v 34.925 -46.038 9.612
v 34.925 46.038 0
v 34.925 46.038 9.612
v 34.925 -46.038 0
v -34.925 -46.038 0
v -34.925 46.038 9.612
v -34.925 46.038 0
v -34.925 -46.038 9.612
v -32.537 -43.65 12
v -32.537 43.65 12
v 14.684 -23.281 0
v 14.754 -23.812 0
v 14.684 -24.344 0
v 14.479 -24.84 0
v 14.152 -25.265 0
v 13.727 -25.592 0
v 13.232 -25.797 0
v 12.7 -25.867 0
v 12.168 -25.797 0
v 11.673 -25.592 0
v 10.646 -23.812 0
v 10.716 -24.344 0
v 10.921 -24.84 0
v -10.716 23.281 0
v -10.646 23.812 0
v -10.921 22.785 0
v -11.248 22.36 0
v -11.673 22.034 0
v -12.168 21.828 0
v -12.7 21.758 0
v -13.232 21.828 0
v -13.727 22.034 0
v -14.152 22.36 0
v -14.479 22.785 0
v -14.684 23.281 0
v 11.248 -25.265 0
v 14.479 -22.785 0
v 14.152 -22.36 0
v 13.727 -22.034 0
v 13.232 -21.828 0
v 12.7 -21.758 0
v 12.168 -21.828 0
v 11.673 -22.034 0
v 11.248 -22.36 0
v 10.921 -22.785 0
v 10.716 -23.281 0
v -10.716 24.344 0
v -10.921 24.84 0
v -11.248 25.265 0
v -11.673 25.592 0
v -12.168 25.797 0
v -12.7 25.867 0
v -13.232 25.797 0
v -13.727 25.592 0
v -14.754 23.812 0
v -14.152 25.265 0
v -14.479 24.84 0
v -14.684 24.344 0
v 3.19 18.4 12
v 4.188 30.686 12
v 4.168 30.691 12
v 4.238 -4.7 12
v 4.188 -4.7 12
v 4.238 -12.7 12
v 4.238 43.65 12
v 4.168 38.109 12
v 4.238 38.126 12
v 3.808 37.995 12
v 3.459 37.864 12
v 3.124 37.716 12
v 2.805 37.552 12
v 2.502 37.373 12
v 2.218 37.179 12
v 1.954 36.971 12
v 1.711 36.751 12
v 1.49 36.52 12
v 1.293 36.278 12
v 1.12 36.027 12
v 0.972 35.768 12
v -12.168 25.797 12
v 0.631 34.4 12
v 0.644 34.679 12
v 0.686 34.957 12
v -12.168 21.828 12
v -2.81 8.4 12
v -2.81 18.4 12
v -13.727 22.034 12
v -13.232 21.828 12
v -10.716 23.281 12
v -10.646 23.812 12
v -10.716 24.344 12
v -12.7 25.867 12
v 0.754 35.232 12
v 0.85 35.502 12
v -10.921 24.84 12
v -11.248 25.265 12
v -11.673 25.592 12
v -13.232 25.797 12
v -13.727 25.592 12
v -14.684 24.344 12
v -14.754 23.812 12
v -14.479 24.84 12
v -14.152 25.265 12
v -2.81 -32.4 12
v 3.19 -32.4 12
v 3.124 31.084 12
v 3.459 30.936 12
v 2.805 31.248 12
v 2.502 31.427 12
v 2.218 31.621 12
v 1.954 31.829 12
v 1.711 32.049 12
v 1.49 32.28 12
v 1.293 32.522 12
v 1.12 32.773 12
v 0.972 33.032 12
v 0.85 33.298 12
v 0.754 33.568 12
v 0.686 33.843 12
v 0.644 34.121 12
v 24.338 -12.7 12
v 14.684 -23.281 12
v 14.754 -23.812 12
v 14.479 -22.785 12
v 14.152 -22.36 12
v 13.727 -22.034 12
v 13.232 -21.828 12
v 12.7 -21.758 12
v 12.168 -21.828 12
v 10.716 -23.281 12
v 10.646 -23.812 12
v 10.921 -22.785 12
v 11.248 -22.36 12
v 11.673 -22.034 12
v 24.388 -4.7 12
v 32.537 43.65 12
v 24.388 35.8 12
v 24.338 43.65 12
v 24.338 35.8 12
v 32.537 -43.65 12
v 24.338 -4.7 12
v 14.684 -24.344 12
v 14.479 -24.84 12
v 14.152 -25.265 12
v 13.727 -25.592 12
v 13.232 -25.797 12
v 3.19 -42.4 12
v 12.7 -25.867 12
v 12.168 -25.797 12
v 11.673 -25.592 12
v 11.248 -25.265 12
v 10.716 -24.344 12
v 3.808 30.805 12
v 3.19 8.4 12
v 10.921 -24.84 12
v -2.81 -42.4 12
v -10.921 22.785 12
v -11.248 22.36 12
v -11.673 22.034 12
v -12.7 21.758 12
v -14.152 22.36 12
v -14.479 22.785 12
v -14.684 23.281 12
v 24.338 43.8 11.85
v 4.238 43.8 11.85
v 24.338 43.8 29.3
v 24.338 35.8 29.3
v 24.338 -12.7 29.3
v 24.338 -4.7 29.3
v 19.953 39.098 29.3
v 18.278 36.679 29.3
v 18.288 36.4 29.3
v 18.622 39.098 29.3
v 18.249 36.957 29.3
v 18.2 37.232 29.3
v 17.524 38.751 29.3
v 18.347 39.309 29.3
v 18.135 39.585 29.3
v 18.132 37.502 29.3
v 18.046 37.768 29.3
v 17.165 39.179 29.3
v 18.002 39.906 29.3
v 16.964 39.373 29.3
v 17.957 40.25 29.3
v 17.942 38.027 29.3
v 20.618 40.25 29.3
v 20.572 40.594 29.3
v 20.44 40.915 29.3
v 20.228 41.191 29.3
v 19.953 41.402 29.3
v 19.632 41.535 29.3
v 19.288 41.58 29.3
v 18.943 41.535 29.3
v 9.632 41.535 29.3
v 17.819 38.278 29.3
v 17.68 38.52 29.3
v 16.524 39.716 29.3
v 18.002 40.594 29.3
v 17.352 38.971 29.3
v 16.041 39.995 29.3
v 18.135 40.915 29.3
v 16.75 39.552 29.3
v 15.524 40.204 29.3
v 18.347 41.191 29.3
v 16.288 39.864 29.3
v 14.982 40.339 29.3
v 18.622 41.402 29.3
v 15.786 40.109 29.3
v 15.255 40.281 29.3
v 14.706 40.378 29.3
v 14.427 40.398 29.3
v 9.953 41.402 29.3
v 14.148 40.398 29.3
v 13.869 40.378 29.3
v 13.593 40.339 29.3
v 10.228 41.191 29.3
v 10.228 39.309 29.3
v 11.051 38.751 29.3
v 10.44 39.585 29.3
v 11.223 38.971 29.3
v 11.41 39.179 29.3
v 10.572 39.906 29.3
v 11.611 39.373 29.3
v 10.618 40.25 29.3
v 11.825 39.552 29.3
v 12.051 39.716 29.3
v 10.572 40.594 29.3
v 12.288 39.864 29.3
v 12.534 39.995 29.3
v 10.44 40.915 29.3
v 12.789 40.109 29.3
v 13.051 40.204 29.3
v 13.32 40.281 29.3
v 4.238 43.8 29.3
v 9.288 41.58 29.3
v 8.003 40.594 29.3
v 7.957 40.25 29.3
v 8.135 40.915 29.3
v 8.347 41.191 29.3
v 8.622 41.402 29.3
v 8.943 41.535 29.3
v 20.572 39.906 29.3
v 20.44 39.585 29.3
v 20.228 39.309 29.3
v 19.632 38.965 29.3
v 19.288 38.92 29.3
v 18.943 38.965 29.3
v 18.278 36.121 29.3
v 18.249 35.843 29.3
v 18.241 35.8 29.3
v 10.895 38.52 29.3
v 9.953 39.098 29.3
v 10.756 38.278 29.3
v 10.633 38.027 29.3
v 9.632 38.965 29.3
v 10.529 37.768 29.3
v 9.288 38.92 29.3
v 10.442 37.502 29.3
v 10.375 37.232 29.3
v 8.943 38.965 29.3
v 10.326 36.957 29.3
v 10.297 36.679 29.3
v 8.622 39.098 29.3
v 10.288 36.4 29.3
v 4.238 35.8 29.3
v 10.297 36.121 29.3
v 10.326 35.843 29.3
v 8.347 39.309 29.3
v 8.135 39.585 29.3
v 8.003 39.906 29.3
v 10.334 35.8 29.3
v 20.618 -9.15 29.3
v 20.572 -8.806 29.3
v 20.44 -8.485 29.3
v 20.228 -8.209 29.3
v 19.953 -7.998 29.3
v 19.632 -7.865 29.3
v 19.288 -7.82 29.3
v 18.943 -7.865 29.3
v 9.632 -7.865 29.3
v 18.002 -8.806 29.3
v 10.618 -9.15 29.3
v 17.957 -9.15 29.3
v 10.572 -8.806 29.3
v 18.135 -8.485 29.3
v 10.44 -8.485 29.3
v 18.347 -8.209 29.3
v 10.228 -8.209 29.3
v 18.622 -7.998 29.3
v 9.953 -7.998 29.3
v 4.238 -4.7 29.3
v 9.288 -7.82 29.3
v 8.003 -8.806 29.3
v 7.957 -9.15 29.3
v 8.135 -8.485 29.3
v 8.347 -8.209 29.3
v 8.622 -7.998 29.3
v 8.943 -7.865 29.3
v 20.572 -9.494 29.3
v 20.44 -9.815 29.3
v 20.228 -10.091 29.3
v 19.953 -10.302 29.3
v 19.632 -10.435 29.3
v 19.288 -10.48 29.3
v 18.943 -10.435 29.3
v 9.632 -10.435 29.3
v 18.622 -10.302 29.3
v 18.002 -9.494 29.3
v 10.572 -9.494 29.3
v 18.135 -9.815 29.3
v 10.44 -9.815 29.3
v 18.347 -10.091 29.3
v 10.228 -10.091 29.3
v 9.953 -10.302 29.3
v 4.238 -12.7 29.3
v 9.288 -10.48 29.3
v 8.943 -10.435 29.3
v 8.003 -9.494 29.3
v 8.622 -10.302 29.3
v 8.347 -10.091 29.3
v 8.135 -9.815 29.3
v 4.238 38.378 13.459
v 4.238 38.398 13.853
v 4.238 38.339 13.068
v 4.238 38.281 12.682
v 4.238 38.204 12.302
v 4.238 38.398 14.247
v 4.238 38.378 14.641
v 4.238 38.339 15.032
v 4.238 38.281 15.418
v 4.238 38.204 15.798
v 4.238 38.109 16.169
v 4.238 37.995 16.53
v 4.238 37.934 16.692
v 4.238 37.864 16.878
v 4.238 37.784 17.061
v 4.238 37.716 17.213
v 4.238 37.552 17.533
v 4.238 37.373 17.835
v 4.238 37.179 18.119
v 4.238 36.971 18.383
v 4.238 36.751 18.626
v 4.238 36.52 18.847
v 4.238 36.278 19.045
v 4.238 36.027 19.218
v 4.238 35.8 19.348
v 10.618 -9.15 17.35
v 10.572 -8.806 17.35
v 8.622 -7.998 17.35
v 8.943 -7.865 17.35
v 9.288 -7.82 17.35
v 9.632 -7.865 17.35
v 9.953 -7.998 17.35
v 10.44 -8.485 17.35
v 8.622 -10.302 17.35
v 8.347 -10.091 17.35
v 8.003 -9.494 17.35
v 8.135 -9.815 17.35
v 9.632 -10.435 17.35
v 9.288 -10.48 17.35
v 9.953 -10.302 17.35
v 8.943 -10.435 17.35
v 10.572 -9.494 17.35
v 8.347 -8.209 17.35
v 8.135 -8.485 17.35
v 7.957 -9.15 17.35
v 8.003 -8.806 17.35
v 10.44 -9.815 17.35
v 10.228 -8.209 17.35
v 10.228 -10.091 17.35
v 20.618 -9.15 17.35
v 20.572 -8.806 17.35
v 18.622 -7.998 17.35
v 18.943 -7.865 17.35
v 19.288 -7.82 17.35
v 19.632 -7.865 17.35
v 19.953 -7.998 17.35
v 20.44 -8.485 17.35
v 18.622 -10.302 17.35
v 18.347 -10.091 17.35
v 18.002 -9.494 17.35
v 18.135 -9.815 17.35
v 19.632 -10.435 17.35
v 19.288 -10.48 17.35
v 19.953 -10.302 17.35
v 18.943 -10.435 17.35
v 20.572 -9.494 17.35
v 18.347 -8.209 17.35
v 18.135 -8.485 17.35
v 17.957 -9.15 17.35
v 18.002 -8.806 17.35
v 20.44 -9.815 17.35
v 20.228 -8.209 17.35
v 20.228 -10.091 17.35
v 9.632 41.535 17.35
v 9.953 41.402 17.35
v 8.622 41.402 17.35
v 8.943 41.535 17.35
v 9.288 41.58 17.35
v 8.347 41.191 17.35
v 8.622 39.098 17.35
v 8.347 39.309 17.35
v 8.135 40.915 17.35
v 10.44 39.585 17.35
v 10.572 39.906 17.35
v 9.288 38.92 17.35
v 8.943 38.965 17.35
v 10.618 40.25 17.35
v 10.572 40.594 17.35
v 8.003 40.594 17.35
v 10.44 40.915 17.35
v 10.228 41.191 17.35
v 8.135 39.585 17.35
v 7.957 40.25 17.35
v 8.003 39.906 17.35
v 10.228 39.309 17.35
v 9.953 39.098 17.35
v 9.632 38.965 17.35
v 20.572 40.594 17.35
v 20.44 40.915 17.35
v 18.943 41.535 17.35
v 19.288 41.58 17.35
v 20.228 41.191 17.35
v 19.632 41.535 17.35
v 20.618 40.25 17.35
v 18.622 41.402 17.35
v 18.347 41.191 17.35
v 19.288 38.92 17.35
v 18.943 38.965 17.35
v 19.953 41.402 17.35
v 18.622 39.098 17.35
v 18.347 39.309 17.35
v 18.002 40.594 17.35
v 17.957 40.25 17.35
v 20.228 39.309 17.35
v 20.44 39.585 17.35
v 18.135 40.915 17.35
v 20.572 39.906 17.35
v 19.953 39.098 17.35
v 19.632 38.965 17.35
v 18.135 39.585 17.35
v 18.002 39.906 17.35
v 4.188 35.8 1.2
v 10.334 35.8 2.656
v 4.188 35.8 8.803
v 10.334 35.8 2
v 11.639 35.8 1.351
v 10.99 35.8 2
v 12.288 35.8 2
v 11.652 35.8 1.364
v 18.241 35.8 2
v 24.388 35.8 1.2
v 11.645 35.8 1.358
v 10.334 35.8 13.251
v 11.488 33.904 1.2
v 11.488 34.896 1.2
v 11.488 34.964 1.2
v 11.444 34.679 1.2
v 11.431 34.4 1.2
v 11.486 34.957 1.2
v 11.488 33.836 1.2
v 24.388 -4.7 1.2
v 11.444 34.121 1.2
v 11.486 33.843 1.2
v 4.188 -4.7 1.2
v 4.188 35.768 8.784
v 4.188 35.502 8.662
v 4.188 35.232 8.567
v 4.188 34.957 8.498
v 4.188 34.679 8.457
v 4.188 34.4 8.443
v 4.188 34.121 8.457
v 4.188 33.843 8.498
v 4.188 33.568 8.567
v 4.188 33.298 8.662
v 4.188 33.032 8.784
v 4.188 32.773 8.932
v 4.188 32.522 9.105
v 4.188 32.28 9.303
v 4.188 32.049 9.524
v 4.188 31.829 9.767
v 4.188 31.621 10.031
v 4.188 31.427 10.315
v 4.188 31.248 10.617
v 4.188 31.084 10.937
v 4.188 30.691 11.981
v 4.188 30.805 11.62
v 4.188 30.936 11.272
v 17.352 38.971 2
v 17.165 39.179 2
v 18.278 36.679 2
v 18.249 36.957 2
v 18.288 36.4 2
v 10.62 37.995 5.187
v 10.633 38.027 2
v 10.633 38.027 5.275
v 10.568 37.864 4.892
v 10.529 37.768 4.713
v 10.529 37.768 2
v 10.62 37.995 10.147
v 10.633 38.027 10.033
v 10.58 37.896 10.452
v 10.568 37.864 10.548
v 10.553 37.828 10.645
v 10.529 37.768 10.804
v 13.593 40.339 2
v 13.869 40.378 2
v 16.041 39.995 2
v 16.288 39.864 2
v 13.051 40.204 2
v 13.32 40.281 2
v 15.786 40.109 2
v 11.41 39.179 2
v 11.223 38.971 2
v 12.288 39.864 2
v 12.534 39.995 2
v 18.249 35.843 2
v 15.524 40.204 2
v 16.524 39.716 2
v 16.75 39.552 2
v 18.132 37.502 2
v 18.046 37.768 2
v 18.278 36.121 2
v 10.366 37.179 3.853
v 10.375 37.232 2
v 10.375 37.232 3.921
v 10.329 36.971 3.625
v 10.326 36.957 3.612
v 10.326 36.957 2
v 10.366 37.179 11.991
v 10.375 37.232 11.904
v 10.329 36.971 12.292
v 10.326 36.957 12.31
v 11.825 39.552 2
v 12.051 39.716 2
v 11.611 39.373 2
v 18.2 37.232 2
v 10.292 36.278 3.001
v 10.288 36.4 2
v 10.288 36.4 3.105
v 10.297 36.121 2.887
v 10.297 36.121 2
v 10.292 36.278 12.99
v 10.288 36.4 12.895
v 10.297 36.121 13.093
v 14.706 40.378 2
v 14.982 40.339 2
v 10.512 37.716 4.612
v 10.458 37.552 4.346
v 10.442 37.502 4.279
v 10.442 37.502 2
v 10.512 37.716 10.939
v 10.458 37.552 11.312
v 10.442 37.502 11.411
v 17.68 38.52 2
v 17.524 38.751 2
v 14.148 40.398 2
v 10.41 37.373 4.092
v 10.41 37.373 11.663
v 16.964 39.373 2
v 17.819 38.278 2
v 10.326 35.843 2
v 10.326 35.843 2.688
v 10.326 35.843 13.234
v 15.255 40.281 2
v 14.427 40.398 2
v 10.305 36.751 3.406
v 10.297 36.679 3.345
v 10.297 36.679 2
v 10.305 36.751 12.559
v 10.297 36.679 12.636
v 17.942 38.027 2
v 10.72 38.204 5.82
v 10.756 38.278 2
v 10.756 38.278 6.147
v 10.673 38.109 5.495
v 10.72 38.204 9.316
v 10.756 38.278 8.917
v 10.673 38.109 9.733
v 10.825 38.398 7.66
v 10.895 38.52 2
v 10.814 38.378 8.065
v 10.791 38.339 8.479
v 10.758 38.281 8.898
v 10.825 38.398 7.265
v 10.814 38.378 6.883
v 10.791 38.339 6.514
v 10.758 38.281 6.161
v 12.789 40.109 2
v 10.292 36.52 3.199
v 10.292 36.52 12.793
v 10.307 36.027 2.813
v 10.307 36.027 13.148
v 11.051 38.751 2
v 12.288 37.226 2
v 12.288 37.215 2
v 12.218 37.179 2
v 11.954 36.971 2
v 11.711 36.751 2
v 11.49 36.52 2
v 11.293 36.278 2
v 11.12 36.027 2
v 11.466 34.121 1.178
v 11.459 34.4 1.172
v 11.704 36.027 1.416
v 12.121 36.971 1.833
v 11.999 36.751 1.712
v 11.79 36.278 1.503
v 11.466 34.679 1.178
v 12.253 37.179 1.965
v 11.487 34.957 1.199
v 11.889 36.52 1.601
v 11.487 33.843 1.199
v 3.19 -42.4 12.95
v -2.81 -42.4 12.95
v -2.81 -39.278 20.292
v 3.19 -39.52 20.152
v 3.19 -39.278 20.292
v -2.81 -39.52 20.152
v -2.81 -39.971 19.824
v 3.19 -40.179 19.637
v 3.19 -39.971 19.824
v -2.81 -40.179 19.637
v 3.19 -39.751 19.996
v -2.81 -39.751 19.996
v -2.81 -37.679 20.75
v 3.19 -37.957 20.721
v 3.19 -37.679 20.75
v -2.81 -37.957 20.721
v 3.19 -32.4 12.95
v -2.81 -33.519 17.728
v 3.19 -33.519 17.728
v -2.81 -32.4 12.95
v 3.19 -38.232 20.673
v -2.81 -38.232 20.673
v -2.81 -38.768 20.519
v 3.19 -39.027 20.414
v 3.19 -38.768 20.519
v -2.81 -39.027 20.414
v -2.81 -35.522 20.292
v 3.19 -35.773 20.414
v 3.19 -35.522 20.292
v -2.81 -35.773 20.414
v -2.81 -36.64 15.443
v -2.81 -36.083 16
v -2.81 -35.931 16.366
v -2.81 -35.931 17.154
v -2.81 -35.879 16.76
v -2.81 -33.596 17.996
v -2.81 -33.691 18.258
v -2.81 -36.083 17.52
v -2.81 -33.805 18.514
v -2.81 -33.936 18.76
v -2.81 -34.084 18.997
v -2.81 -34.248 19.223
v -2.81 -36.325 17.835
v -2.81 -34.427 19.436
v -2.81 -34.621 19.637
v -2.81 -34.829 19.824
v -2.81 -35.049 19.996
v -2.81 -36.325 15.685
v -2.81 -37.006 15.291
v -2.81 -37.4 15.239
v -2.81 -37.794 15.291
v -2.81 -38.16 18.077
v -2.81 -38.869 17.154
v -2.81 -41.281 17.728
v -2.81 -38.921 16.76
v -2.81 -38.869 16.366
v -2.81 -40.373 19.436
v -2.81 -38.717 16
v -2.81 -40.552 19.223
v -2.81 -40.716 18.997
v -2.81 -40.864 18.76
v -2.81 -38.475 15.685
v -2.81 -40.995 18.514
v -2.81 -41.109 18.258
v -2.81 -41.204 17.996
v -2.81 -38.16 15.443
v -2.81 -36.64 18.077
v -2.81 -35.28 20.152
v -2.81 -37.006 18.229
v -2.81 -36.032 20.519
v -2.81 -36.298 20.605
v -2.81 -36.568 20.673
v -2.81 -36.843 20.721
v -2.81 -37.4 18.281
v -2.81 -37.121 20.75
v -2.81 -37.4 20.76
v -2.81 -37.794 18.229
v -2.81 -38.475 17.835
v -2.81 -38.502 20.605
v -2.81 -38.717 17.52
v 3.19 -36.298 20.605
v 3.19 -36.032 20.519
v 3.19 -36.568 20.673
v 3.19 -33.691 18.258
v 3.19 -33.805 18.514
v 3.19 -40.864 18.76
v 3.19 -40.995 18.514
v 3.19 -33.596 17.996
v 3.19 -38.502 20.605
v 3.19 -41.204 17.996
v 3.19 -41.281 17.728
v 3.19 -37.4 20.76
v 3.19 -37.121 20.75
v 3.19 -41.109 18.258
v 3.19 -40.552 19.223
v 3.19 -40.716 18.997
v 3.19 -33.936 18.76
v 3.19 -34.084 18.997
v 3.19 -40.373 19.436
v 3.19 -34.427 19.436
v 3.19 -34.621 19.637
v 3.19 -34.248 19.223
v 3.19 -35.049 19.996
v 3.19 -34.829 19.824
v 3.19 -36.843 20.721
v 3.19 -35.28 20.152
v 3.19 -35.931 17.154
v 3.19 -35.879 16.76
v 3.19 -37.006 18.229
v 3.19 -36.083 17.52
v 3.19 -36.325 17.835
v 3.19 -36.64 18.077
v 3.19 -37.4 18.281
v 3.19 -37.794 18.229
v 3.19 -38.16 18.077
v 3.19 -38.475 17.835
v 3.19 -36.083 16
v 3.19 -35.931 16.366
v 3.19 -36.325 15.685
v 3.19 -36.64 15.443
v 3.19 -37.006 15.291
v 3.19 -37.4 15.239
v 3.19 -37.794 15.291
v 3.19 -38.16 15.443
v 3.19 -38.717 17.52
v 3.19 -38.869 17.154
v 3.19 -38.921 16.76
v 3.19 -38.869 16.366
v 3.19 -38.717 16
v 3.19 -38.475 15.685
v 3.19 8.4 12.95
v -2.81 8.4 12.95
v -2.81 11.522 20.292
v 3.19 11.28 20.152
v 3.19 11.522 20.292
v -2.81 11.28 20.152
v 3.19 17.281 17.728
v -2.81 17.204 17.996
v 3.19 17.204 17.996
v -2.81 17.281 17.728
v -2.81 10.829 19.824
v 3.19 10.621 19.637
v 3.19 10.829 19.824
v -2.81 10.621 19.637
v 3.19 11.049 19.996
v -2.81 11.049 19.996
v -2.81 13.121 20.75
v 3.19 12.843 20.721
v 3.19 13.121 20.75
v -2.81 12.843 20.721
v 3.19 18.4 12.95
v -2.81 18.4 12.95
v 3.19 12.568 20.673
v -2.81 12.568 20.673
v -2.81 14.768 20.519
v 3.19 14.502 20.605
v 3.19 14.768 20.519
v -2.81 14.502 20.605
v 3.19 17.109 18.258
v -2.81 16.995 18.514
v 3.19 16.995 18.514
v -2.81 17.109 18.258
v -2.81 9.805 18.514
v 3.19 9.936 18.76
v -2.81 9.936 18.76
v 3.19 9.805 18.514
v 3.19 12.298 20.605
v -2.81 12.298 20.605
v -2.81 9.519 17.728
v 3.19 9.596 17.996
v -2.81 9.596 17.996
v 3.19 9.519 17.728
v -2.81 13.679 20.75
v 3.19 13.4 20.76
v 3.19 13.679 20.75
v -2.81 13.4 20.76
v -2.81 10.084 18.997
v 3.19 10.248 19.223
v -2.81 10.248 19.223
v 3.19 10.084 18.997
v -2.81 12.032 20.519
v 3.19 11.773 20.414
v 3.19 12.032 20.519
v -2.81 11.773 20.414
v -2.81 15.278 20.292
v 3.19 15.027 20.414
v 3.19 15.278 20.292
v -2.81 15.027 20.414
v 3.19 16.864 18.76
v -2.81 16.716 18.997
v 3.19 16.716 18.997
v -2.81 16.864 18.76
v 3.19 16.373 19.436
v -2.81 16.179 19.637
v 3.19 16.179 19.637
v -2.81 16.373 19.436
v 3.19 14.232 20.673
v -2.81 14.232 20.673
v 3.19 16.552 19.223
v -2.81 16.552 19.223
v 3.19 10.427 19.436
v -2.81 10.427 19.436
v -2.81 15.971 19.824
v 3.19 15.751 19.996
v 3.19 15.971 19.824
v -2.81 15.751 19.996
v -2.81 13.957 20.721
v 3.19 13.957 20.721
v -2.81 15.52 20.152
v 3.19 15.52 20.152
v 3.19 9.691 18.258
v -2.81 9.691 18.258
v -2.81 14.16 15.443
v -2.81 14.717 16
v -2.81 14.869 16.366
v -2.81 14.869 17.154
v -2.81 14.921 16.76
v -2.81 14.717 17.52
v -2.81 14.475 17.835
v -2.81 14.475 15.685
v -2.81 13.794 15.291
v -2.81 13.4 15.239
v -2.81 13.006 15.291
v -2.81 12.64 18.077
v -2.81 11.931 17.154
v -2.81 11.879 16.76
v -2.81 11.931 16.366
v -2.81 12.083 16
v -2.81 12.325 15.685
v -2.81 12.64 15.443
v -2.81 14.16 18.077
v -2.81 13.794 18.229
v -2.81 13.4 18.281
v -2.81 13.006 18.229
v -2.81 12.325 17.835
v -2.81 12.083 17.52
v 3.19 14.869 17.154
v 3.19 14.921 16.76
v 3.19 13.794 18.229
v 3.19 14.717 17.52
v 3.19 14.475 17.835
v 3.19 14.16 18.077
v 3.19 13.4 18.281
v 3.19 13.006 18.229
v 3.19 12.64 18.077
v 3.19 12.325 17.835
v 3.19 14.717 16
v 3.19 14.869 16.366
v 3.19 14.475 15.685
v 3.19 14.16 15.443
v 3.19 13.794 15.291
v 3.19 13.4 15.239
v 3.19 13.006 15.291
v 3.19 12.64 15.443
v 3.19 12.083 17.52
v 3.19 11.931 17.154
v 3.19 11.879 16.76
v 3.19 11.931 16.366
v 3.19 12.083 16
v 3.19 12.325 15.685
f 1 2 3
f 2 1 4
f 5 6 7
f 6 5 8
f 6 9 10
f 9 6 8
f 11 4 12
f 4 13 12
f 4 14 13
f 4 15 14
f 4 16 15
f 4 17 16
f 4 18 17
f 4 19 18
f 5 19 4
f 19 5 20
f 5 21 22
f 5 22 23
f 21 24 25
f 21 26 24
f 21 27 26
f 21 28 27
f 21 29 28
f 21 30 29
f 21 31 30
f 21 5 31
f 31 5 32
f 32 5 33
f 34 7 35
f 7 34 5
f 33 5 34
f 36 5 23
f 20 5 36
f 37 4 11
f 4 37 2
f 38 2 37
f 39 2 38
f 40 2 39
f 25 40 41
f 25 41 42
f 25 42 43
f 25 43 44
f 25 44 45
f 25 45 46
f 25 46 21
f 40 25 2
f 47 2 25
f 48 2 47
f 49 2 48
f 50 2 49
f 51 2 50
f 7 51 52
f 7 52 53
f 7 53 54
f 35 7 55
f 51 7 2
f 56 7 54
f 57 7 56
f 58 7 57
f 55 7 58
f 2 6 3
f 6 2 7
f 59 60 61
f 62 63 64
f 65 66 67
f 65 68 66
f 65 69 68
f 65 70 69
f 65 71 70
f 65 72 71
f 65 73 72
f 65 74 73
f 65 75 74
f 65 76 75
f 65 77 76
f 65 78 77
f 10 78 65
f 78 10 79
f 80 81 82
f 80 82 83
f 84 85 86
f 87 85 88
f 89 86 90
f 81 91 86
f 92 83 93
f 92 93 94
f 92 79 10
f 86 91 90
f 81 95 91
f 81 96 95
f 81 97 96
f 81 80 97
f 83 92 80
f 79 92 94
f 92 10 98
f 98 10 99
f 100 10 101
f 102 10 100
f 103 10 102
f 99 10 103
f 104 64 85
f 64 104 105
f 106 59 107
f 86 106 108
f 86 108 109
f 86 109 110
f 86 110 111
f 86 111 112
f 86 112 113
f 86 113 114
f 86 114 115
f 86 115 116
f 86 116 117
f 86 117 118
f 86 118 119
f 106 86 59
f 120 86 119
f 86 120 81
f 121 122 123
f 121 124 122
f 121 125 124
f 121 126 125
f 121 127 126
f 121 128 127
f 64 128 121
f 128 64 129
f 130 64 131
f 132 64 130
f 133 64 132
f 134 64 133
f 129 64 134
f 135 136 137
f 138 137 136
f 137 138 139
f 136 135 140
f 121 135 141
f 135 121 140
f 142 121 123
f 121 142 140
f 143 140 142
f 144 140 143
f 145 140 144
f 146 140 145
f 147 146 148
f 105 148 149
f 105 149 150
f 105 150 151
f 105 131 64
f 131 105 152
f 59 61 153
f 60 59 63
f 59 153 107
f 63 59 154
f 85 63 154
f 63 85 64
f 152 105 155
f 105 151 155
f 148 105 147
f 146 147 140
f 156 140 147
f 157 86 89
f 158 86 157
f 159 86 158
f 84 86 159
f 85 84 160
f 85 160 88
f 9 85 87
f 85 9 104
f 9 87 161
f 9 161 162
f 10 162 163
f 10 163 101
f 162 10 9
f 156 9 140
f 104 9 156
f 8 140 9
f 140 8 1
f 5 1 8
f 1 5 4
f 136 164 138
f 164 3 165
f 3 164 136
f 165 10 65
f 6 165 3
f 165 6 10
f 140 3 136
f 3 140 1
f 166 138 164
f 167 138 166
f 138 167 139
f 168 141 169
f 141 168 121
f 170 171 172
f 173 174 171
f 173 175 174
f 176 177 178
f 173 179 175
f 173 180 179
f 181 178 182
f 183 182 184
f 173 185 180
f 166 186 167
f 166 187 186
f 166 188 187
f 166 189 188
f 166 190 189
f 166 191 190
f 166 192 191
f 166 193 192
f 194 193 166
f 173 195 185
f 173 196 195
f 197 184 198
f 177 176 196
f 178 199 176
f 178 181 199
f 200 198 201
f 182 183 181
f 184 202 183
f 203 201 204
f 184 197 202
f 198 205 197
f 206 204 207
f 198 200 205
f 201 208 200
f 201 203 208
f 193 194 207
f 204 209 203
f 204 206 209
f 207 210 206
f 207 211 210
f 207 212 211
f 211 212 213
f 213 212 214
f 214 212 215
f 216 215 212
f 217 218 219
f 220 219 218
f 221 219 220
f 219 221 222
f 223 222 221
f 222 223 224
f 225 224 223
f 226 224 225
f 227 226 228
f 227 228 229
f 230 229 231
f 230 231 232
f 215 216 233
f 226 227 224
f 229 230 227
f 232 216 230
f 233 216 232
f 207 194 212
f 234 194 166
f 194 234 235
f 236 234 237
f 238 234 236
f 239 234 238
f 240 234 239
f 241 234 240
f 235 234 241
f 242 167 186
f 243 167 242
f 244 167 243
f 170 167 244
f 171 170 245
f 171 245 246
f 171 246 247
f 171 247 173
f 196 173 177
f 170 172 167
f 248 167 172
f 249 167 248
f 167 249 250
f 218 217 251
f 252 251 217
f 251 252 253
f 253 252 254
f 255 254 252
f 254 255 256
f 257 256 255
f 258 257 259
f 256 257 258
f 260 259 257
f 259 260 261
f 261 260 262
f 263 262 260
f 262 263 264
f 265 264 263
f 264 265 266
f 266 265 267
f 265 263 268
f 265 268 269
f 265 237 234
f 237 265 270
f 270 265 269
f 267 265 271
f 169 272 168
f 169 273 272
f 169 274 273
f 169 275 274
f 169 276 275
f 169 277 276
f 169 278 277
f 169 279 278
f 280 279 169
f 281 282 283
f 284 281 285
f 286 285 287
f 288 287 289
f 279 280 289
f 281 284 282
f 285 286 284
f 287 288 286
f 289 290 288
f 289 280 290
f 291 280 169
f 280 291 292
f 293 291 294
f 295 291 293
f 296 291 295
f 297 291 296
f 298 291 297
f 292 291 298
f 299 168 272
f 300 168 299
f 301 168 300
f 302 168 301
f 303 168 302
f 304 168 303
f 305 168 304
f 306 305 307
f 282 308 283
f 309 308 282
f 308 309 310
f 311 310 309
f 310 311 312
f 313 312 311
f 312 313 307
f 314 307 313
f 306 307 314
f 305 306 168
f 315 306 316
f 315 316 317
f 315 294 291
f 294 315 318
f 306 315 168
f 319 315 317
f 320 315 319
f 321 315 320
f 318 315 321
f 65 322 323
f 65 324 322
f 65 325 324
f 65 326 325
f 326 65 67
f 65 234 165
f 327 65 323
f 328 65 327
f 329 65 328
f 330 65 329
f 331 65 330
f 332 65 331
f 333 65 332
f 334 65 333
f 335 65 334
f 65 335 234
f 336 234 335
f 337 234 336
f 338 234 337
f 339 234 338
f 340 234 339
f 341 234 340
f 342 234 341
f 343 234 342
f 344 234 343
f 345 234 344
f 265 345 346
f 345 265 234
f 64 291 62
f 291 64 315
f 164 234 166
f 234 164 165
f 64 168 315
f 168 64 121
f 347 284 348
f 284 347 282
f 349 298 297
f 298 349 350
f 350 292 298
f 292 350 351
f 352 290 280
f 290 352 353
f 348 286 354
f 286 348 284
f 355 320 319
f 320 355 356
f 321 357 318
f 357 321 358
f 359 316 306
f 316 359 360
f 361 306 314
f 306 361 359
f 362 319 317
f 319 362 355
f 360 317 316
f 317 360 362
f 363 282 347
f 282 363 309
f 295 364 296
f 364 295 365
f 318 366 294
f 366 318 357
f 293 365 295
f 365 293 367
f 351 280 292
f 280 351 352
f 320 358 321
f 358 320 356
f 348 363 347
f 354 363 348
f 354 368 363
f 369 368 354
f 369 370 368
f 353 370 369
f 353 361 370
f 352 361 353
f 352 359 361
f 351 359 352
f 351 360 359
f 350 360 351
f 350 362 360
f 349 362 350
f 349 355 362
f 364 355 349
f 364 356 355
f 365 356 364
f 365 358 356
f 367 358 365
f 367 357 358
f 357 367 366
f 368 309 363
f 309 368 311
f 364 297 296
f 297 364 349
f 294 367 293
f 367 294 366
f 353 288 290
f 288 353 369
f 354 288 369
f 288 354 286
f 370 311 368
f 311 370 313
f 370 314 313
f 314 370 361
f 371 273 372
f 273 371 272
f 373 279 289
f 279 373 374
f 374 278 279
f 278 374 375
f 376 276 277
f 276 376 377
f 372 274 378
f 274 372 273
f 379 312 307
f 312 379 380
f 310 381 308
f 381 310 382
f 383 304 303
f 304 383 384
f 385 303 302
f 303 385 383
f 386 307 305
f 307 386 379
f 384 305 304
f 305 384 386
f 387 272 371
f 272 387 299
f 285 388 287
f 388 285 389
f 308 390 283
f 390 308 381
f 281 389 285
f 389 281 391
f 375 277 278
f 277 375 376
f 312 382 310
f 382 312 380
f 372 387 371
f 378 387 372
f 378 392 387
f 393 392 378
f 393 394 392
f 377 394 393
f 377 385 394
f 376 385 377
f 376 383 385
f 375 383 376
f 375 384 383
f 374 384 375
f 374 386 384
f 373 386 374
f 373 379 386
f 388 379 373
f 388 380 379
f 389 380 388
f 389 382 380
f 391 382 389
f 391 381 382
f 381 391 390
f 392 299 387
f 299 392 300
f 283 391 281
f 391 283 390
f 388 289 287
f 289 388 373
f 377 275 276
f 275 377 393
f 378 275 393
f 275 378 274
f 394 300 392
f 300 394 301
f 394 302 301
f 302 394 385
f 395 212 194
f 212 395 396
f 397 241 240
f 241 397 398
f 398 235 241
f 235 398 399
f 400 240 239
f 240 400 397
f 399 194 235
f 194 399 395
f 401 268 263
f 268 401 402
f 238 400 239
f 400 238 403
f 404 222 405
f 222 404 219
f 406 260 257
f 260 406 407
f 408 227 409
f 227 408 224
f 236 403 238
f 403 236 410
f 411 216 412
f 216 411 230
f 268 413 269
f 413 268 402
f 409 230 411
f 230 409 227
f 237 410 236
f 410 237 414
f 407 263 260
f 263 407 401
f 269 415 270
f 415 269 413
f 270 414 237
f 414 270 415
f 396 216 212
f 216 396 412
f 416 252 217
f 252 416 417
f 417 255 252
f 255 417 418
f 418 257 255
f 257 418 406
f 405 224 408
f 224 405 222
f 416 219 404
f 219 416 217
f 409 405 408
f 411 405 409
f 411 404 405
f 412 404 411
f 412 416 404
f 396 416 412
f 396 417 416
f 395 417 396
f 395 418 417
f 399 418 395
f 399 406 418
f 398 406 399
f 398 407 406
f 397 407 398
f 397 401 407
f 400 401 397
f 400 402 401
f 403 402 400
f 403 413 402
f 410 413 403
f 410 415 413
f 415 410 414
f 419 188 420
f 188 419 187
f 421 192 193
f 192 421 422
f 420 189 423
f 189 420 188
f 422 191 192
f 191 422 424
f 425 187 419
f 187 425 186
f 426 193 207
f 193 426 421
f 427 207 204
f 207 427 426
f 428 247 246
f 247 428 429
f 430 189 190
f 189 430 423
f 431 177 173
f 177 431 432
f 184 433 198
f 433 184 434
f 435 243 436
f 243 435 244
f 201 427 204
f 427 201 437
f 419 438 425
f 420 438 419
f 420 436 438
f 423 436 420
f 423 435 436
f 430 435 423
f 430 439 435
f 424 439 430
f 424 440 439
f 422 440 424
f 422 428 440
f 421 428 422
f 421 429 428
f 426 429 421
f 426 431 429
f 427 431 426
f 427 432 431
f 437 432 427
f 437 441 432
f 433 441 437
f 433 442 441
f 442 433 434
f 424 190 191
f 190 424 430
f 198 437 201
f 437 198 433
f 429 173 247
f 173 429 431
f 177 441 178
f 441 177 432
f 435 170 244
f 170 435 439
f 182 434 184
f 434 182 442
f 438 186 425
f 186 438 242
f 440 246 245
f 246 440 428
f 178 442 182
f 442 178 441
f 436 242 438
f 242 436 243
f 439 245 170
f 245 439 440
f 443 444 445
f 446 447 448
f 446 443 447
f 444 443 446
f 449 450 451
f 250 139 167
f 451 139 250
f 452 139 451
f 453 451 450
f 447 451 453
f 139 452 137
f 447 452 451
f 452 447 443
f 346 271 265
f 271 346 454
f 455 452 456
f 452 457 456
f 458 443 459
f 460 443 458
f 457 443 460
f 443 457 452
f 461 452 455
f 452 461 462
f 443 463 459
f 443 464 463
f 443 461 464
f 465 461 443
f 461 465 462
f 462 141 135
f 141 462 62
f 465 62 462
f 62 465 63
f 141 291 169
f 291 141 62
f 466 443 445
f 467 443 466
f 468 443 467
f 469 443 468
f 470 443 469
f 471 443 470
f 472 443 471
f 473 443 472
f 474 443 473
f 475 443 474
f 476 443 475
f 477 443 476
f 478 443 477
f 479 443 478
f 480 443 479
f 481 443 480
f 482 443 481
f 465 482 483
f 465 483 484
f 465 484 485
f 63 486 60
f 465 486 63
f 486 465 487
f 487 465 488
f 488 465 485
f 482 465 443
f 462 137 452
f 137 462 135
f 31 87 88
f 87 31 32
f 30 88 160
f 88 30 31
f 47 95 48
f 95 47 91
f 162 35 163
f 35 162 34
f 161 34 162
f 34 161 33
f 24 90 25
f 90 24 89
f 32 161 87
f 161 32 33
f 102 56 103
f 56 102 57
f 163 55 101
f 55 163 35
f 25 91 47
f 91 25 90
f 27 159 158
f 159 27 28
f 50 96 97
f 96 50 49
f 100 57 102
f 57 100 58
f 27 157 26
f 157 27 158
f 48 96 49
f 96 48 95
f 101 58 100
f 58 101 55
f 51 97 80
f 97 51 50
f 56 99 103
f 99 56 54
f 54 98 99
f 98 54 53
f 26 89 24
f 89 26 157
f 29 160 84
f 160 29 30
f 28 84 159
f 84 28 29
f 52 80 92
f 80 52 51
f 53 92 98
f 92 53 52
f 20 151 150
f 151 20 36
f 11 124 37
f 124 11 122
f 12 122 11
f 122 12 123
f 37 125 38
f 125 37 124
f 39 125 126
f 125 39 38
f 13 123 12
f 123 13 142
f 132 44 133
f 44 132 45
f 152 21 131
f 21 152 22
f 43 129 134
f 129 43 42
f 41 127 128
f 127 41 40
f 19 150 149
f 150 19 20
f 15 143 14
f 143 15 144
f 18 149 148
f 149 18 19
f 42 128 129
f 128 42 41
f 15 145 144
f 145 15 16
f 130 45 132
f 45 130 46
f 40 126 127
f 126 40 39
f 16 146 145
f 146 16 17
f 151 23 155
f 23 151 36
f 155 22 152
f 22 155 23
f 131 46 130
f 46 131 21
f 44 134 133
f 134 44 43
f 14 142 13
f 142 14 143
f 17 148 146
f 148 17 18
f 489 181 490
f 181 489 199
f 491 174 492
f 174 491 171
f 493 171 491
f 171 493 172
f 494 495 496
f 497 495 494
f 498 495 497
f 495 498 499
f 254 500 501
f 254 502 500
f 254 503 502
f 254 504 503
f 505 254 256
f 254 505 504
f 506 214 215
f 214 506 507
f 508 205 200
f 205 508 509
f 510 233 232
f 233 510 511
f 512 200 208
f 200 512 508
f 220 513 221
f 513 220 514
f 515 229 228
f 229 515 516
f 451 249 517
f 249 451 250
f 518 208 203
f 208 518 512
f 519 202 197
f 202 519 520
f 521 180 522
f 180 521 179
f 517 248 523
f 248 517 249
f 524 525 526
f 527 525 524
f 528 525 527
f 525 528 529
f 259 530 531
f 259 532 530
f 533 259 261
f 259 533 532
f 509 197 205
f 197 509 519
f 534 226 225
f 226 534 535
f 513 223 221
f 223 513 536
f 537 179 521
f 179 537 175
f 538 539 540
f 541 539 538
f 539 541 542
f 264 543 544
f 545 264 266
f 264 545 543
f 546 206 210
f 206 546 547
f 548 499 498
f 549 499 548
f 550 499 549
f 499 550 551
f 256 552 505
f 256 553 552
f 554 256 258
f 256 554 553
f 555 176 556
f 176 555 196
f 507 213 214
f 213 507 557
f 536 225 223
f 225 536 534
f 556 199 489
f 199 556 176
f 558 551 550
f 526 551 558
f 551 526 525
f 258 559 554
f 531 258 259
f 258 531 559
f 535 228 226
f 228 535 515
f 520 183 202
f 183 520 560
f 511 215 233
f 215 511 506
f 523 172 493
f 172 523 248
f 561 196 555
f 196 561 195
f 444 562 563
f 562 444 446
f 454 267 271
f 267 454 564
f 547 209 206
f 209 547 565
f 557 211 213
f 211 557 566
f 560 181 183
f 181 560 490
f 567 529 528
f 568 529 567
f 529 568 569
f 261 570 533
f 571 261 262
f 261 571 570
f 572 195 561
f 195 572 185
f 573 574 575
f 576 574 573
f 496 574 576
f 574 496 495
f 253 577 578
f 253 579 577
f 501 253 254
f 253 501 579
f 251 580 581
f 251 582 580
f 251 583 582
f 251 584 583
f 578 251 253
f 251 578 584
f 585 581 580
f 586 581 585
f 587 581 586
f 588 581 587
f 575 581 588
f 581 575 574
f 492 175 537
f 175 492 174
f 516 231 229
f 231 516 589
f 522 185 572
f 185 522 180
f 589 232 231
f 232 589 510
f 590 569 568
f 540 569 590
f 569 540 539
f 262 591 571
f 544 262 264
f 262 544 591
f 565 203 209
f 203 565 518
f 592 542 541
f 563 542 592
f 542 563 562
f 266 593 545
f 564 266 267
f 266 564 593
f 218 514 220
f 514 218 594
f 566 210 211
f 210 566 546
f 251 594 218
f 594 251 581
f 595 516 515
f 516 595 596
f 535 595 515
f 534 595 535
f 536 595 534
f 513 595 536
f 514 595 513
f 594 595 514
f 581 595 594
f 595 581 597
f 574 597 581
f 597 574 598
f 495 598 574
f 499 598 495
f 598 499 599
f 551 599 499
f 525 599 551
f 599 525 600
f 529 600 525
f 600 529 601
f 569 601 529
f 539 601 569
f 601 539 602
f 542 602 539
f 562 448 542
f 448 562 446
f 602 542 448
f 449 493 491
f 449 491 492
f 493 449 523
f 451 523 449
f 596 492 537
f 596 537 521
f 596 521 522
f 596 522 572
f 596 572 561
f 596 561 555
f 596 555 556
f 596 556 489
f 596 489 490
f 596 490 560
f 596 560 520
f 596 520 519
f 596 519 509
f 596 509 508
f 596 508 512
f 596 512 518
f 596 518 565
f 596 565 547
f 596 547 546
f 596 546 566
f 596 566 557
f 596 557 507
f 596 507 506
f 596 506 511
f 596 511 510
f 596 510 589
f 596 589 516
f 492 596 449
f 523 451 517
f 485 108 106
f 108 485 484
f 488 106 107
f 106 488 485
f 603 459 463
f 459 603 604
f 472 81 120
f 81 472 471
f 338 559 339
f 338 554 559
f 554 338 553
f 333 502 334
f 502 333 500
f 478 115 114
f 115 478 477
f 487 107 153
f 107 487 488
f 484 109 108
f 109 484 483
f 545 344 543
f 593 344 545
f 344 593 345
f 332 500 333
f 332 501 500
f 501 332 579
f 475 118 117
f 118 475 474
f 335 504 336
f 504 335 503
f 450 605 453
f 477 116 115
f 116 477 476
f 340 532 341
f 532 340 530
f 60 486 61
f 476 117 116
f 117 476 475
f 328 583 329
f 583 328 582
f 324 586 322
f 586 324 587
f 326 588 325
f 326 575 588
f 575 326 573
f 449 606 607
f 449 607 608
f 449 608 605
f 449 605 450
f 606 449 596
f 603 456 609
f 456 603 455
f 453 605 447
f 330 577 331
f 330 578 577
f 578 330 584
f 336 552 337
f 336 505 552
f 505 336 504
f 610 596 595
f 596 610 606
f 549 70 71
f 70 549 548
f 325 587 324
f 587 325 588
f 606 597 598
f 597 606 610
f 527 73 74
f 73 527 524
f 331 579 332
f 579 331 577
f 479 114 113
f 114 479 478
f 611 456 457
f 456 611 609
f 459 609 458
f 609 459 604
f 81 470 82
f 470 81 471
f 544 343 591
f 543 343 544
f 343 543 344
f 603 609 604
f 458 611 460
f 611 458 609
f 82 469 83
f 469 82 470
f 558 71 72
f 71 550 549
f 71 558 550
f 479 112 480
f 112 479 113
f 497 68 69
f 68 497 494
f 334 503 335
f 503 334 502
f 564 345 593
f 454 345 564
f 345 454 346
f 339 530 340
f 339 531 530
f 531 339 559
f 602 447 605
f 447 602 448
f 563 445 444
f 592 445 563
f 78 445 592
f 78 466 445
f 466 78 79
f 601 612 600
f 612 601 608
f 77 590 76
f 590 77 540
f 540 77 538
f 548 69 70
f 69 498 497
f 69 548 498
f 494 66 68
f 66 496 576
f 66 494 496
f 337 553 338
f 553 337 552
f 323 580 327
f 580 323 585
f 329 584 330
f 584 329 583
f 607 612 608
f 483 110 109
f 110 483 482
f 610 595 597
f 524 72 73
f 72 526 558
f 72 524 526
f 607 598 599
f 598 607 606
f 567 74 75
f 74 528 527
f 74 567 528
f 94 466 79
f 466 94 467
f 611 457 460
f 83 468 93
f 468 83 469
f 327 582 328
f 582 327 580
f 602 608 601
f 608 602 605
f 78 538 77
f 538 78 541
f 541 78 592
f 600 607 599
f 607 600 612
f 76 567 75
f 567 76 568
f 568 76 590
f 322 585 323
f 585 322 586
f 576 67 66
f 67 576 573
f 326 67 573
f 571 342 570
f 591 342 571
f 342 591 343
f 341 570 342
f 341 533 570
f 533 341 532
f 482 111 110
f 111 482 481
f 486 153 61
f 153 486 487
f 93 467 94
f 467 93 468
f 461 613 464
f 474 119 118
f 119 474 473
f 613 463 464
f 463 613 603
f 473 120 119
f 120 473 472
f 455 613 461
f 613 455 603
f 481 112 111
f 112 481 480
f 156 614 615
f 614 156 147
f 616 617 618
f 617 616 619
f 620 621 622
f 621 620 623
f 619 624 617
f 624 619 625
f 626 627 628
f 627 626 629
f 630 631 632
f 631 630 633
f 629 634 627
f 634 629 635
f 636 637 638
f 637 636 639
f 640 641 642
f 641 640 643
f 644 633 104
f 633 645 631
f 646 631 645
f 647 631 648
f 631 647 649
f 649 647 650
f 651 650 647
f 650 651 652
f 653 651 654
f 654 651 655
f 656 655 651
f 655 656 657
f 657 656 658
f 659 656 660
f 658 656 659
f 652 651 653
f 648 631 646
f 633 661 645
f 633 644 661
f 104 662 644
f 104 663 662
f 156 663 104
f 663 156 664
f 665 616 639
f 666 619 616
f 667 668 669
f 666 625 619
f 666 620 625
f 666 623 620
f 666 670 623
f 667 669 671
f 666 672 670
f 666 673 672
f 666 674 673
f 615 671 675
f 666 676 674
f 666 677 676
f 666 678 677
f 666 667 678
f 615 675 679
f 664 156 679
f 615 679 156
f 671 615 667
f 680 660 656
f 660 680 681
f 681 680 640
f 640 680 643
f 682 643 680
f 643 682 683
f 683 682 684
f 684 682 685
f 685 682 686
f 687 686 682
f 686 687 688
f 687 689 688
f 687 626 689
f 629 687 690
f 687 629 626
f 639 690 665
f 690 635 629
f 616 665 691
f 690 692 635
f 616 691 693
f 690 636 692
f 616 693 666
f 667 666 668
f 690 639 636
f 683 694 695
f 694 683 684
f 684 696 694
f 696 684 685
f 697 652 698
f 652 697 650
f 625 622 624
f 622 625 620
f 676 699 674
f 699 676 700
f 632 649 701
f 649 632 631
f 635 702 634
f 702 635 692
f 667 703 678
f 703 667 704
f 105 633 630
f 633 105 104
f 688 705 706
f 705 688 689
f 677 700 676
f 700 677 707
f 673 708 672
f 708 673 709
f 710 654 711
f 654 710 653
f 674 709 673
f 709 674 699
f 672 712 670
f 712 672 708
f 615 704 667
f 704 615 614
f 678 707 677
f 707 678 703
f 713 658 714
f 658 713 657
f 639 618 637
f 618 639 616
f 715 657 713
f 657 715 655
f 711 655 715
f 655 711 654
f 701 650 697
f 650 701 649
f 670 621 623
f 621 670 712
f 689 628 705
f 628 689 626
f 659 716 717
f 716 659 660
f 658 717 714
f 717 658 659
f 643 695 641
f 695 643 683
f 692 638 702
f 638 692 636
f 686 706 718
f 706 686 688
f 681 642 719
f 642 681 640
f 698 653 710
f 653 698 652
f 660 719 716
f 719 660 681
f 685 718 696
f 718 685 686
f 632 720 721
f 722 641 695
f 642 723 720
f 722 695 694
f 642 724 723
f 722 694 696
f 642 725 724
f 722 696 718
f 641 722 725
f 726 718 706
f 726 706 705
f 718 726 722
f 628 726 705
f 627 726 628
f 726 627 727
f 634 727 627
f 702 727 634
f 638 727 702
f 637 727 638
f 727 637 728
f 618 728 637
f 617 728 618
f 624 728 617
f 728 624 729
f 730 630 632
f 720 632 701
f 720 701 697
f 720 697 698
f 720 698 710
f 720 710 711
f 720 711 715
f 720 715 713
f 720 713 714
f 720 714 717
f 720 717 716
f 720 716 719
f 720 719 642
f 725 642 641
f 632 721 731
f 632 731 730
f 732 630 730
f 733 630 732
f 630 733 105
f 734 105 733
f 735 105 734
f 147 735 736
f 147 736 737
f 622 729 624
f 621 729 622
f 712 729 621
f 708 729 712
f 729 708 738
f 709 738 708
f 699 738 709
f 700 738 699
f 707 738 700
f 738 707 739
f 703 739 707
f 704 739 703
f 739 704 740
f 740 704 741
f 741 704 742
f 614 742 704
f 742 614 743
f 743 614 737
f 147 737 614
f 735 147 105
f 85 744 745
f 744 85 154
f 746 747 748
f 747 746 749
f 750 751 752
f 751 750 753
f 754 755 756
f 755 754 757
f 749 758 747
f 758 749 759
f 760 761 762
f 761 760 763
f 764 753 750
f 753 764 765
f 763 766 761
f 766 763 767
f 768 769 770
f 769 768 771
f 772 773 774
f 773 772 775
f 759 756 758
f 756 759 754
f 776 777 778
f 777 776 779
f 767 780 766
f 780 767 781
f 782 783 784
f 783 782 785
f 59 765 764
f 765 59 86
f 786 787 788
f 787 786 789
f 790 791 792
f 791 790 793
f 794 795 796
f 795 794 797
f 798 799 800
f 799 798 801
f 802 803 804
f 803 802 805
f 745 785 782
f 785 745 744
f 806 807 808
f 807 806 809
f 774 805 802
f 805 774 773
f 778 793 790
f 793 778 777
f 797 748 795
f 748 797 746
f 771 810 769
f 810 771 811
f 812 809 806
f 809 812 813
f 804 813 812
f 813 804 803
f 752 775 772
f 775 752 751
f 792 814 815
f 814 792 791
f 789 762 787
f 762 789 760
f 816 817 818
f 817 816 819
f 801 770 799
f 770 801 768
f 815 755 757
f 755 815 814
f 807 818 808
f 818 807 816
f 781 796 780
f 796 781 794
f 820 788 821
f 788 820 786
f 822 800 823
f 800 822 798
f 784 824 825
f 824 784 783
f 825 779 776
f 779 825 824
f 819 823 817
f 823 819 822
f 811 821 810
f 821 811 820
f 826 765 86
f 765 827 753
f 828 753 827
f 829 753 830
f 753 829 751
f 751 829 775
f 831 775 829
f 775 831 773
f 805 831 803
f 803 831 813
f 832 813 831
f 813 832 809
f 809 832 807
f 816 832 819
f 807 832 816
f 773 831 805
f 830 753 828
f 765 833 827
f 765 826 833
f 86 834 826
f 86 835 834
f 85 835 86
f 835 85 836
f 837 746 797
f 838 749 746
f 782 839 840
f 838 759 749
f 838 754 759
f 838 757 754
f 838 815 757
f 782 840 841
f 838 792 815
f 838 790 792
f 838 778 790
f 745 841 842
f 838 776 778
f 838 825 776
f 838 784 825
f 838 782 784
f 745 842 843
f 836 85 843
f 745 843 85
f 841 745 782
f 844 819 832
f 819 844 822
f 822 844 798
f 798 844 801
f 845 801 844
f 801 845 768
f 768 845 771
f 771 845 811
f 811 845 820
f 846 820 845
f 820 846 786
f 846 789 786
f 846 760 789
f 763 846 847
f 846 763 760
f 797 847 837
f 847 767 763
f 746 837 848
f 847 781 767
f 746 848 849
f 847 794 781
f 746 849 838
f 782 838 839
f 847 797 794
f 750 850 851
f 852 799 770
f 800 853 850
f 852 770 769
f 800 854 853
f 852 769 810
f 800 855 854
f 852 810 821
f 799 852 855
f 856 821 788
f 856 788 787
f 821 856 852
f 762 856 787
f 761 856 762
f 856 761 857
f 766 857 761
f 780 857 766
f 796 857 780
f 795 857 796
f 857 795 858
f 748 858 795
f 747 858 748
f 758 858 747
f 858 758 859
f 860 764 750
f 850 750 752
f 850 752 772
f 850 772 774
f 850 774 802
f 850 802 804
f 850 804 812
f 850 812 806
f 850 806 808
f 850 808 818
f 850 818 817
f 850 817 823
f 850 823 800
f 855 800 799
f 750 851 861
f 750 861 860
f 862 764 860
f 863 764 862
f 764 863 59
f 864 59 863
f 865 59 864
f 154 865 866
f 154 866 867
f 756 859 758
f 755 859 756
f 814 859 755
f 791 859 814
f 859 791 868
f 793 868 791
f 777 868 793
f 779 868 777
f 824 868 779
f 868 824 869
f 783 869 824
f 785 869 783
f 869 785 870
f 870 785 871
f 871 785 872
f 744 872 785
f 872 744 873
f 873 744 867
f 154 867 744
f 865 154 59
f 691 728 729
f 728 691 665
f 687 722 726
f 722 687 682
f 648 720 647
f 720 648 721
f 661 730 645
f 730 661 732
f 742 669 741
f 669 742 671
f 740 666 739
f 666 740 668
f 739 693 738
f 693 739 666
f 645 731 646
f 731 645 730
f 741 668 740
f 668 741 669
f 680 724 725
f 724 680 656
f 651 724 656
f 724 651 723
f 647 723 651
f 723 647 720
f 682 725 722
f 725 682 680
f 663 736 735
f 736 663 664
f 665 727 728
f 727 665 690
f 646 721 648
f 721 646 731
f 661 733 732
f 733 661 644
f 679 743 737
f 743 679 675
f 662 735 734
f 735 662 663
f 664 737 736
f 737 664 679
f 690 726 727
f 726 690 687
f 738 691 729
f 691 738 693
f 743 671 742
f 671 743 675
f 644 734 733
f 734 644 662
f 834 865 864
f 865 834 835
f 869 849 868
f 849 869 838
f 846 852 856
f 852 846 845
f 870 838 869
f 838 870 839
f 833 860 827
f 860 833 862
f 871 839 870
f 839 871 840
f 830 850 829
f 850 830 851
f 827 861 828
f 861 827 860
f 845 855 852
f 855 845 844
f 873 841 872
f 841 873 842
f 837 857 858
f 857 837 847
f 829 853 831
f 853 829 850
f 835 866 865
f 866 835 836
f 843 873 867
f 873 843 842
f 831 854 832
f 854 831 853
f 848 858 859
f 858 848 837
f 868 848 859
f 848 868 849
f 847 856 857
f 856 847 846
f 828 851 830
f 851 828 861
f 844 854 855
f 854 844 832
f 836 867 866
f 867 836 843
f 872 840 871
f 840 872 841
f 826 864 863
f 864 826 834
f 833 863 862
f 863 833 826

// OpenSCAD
// file: LD-20MGServoLib.scad
// **************************************************
// LD-20MG Servo Library
// David M. Flynn
// Filename: LD-20MGServoLib.scad
// Created: 7/16/2018
// Rev: 1.0.0 7/16/2018
// Units: millimeters
// **************************************************
// History:
	echo("LD-20MGServoLib 1.0.0");
// 1.0.0 7/16/2018 Coppied from HS-5245MGServoLib.scad
// **************************************************
// Notes:
//  Mounting of R/C mini servo HS-5245MG.
//  ToDo: Servo wheel needs adjusting.
// **************************************************
// Routines
//	Servo_LD20MG();
//	LD20MGServoWheel();
// **************************************************

include<CommonStuffSAEmm.scad>

$fn=90;

module Servo_LD20MG(BottomMount=true,TopAccess=true){
	Servo_Shaft_Offset=9.85; // this moves double
	Servo_BoltSpace=10;
	Servo_BoltSpace2=49.4;
	Servo_x=54.5;
	Servo_h1=28.2; // bottom of servo to bottom of mount
	Servo_w=20.2;
	Servo_Body_l=40.5;
	Servo_Deck_h=3.2;
	Servo_TopStep_h=9.7;
	Servo_TopOfWheel=21.4;
	
	translate([-Servo_Shaft_Offset,0,0]){
	// body
	if (BottomMount==true){
		translate([-Servo_x/2,-Servo_w/2,-Servo_h1])cube([Servo_x,Servo_w,Servo_h1+Overlap]);
	} else{
		translate([-Servo_Body_l/2,-Servo_w/2,-Servo_h1])cube([Servo_Body_l,Servo_w,Servo_h1+Overlap]);
	}
	
	// top
	if (BottomMount==true){
		translate([-Servo_x/2,-Servo_w/2,0])cube([Servo_x,Servo_w,Servo_Deck_h+Overlap]);
		translate([-Servo_Body_l/2,-Servo_w/2,Servo_Deck_h])cube([Servo_Body_l,Servo_w,Servo_TopStep_h+Overlap]);
		// gussets
		hull(){
			translate([-Servo_x/2,-0.8,Servo_Deck_h])cube([Servo_x,1.6,0.01]);
			translate([-Servo_Body_l/2,-0.8,Servo_Deck_h+2.4])cube([Servo_Body_l,1.6,0.01]);
		} // hull
	} else
	if (TopAccess==true){
		translate([-Servo_x/2,-Servo_w/2,0])cube([Servo_x,Servo_w,19]);
	} else {
	translate([-Servo_x/2,-Servo_w/2,0])cube([Servo_x,Servo_w,14]);
	}
	
	// Bolt holes
	translate([-Servo_BoltSpace2/2,Servo_BoltSpace/2,0]) Bolt4Hole();
	translate([-Servo_BoltSpace2/2,-Servo_BoltSpace/2,0]) Bolt4Hole();
	translate([Servo_BoltSpace2/2,Servo_BoltSpace/2,0]) Bolt4Hole();
	translate([Servo_BoltSpace2/2,-Servo_BoltSpace/2,0]) Bolt4Hole();
		
	if (BottomMount==true){
		translate([-Servo_BoltSpace2/2,Servo_BoltSpace/2,0]) rotate([180,0,0])Bolt4Hole();
		translate([-Servo_BoltSpace2/2,-Servo_BoltSpace/2,0]) rotate([180,0,0])Bolt4Hole();
		translate([Servo_BoltSpace2/2,Servo_BoltSpace/2,0]) rotate([180,0,0])Bolt4Hole();
		translate([Servo_BoltSpace2/2,-Servo_BoltSpace/2,0]) rotate([180,0,0])Bolt4Hole();
	} else{
		translate([-Servo_BoltSpace2/2,Servo_BoltSpace/2,0]) Bolt4Hole();
		translate([-Servo_BoltSpace2/2,-Servo_BoltSpace/2,0]) Bolt4Hole();
		translate([Servo_BoltSpace2/2,Servo_BoltSpace/2,0]) Bolt4Hole();
		translate([Servo_BoltSpace2/2,-Servo_BoltSpace/2,0]) Bolt4Hole();
	}
	
	if (BottomMount==true){
		// servo wheel
		translate([Servo_Shaft_Offset,0,Servo_Deck_h+Servo_TopStep_h-Overlap])
			cylinder(d=21.3,h=Servo_TopOfWheel-Servo_Deck_h-Servo_TopStep_h+Overlap);
	} else {
		translate([Servo_Shaft_Offset,0,0]) cylinder(d=21.3,h=19.6);
	}
	translate([Servo_Shaft_Offset,0,0]) cylinder(d=9,h=30);
	translate([Servo_Shaft_Offset,14.5/2,19.6+6]) Bolt4HeadHole();
	translate([Servo_Shaft_Offset,-14.5/2,19.6+6]) Bolt4HeadHole();
	}
} // Servo_LD20MG

//Servo_LD20MG();

module LD20MGServoWheel(){
	kHornThickness=2.1;
	kHub_d=13;
	
	cylinder(d=7.8,h=kHornThickness+1.2);
	cylinder(d=5.8,h=kHornThickness+10);
	
	hull(){
			translate([0,0,-Overlap]) cylinder(d=kHub_d,h=kHornThickness);
			translate([0,16.05,-Overlap]) cylinder(d=5.1,h=kHornThickness);
		} // hull
		
	hull(){
			translate([0,0,-Overlap]) cylinder(d=kHub_d,h=kHornThickness);
			translate([0,-16.05,-Overlap]) cylinder(d=5.1,h=kHornThickness);
		} // hull
		
		hull(){
			translate([0,0,-Overlap]) cylinder(d=kHub_d,h=kHornThickness);
			translate([-15.05,0,-Overlap]) cylinder(d=5.1,h=kHornThickness);
		} // hull
		
		hull(){
			translate([0,0,-Overlap]) cylinder(d=kHub_d,h=kHornThickness);
			translate([15.05,0,-Overlap]) cylinder(d=5.1,h=kHornThickness);
		} // hull
} // LD20MGServoWheel

//LD20MGServoWheel();
// main file
// *************************************************
// Standard Servo Switch Machine Block & Adaptor
// by Dave Flynn
// Filename:ServoSMBlock.scad
// Created: 8/18/2018
// Revision: 1.0d1 8/18/2018
// Units: mm
// **************************************************

include<CommonStuffSAEmm.scad>
include<LD-20MGServoLib.scad>

$fn=90;
Overlap=0.05;
IDXtra=0.2;



module Arm(L=30){
	// Arm for MG996R servo
	//Ball_d=3/8*25.4;
	Ball_d=5/16*25.4;
	Arm_h=5;
	S_Wheel_d=21;
	
	module ArmBall(){
		Wire_d=0.055*25.4;
		
		difference(){
			sphere(d=Ball_d,$fn=30);
			translate([0,0,-Ball_d/2-Overlap]) cylinder(d=Wire_d+IDXtra,h=Ball_d+Overlap*2);
		} // diff
	} // ArmBall

	//ArmBall();
	
	difference(){
		union(){
			cylinder(d=S_Wheel_d,h=Arm_h);
			
			hull(){
				cylinder(d=(S_Wheel_d+Ball_d)/2,h=Arm_h);
				
				translate([L,0,0]) cylinder(d=Ball_d+4,h=Arm_h);
			} // hull
			
		} // union
		
		// the ball
		translate([L,0,Arm_h/2]) sphere(d=Ball_d+IDXtra,$fn=60);
		translate([L,0,-Overlap]) cylinder(d=Ball_d*0.707,h=Arm_h+Overlap*2);
		
		// slot
		translate([L-Ball_d,-0.5,-Overlap]) cube([Ball_d*2+Overlap,1,Arm_h+Overlap*2]);
		
		// screw access
		translate([0,0,-Overlap]) cylinder(d=8,h=Arm_h+Overlap*2);
		
		// Mounting screws
		for (j=[0:3]) rotate([0,0,90*j]) translate([8,0,Arm_h]) Bolt2ClearHole();
	} // diff
	
	
} // Arm

//Arm();

module SMBlock(){
	Block_x=2.75*25.4;
	Block_y=3.625*25.4;
	Block_z=12; // 0.75*25.4;
	BlockChamfer=0.094*25.4;
	
	Shaft_x=0.5625*25.4;
	Shaft_y=1.0*25.4;
	Shaft_z=50; // 2.5*25.4;
	Servo_Shaft_Offset=9.85;
	Servo_TopOfWheel=20.6;
	Servo_y=54.5;
	Servo_Body_l=40.5;
	Servo_h1=19.3; // bottom of servo to bottom of mount
	Servo_w=20.2;
	
	MH_x=1*25.4;
	MH_y=1.875*25.4;
	
	// G2R Mini PCB
	PCB_X=2.3*25.4;
	PCB_Y=1.85*25.4;
	PCB_BC_X=2.0*25.4;
	PCB_Bolt_Y=0.15*25.4;
	
	difference(){
		union(){
			hull(){
				translate([0,0,(Block_z-BlockChamfer)/2]) cube([Block_x,Block_y,Block_z-BlockChamfer],center=true);
				translate([0,0,Block_z/2]) cube([Block_x-BlockChamfer*2,Block_y-BlockChamfer*2,Block_z],center=true);
			} // hull
			
			// Servo mounts
			translate([Shaft_x-(Servo_w/2-Overlap),Shaft_y-Servo_Shaft_Offset-(Servo_y/2+1),0]) 
				cube([Servo_w-Overlap*2,Servo_y+2,Servo_h1+10]);
		} // union
		
		// mounting holes
		translate([-MH_x/2,MH_y/2,Block_z]) Bolt6ClearHole(depth=Block_z);
		translate([MH_x/2,-MH_y/2,Block_z]) Bolt6ClearHole(depth=Block_z);
		
		//wire path
		translate([Shaft_x,Shaft_y+11,2]) cylinder(d=8,h=30);
		translate([Shaft_x,Shaft_y+9,4]) rotate([0,-45,0]) cylinder(d=8,h=30);
		
		// Servo
		translate([Shaft_x,Shaft_y,Shaft_z-Servo_TopOfWheel]) rotate([0,0,90]) Servo_LD20MG(BottomMount=false,TopAccess=false);
		
		//PCB mount for RC servo controller
	
	
	} // diff
	
	translate([1,-12,Block_z-Overlap]){
		difference(){
			union(){
				translate([-PCB_Bolt_Y,-PCB_BC_X/2,0])  hull(){
					translate([0,0,PCB_Bolt_Y+1]) rotate([0,90,0]) cylinder(d=8,h=6);
					translate([0,-5,0]) cube([6,10,1]);}
					
				translate([-PCB_Bolt_Y,PCB_BC_X/2,0])  hull(){
					translate([0,0,PCB_Bolt_Y+1]) rotate([0,90,0]) cylinder(d=8,h=6);
					translate([0,-5,0]) cube([6,10,1]);}
			} // union
		
			translate([-PCB_Bolt_Y,-PCB_BC_X/2,PCB_Bolt_Y+1]) rotate([0,-90,0])Bolt6Hole();
			translate([-PCB_Bolt_Y,PCB_BC_X/2,PCB_Bolt_Y+1]) rotate([0,-90,0])Bolt6Hole();}
		} // diff
	
		
	// PCB
	//translate([-3,-12,0])
	//translate([0,-PCB_X/2,Block_z]) color("Red") rotate([0,-90,0]) cube([PCB_Y,PCB_X,1.5]);
	
} // SMBlock

SMBlock();

module HPRRSMBlock(){
	Block_x=2.75*25.4;
	Block_y=3.625*25.4;
	Block_z=12; // 0.75*25.4;
	BlockChamfer=0.094*25.4;
	
	Shaft_x=0.5625*25.4;
	Shaft_y=1.0*25.4;
	Shaft_z=2.5*25.4;
	Servo_Shaft_Offset=9.85;
	Servo_TopOfWheel=21.4;
	Servo_y=54.5;
	Servo_Body_l=40.5;
	Servo_h1=28.2; // bottom of servo to bottom of mount
	Servo_w=20.2;
	
	MH_x=1*25.4;
	MH_y=1.875*25.4;
	
	PH_x = 2.125 * 25.4;
	PH_y1 = 3 * 25.4;
	PH_y2 = 2 * 25.4;
	PH_y3 = 1 * 25.4;
	
	SH_x = 2.25 * 25.4;
	
	EH_x = 1.1 * 25.4;
	
	difference(){
		union(){
			hull(){
				translate([0,0,(Block_z-BlockChamfer)/2]) cube([Block_x,Block_y,Block_z-BlockChamfer],center=true);
				translate([0,0,Block_z/2]) cube([Block_x-BlockChamfer*2,Block_y-BlockChamfer*2,Block_z],center=true);
			} // hull
			
			// Servo mounts
			//translate([Shaft_x,Shaft_y-Servo_Shaft_Offset,Servo_h1-5-0.4]) cube([Servo_w-Overlap*2,Servo_y+2,Servo_h1+10],center=true);
		} // union
		
		// mounting holes
		translate([-MH_x/2,MH_y/2,Block_z]) Bolt6ClearHole(depth=Block_z);
		translate([MH_x/2,-MH_y/2,Block_z]) Bolt6ClearHole(depth=Block_z);
		translate([-MH_x/2,-MH_y/2,Block_z]) Bolt6ClearHole(depth=Block_z);
		translate([MH_x/2,MH_y/2,Block_z]) Bolt6ClearHole(depth=Block_z);
		
		// perimeter holes
		translate([-PH_x/2,PH_y1/2,Block_z]) Bolt6Hole(depth=Block_z-3);
		translate([-PH_x/2,PH_y2/2,Block_z]) Bolt6Hole(depth=Block_z-3);
		translate([-PH_x/2,PH_y3/2,Block_z]) Bolt6Hole(depth=Block_z-3);
		translate([PH_x/2,PH_y1/2,Block_z]) Bolt6Hole(depth=Block_z-3);
		translate([PH_x/2,PH_y2/2,Block_z]) Bolt6Hole(depth=Block_z-3);
		translate([PH_x/2,PH_y3/2,Block_z]) Bolt6Hole(depth=Block_z-3);
		translate([-PH_x/2,-PH_y1/2,Block_z]) Bolt6Hole(depth=Block_z-3);
		translate([-PH_x/2,-PH_y2/2,Block_z]) Bolt6Hole(depth=Block_z-3);
		translate([-PH_x/2,-PH_y3/2,Block_z]) Bolt6Hole(depth=Block_z-3);
		translate([PH_x/2,-PH_y1/2,Block_z]) Bolt6Hole(depth=Block_z-3);
		translate([PH_x/2,-PH_y2/2,Block_z]) Bolt6Hole(depth=Block_z-3);
		translate([PH_x/2,-PH_y3/2,Block_z]) Bolt6Hole(depth=Block_z-3);
		
		translate([0,PH_y1/2,Block_z]) Bolt6Hole(depth=Block_z-3);
		translate([-EH_x/2,PH_y1/2,Block_z]) Bolt6Hole(depth=Block_z-3);
		translate([EH_x/2,PH_y1/2,Block_z]) Bolt6Hole(depth=Block_z-3);
		
		// Solenoid holes
		translate([0,0,Block_z]) Bolt6Hole(depth=Block_z-3);
		translate([-SH_x/2,0,Block_z]) Bolt6Hole(depth=Block_z-3);
		translate([SH_x/2,0,Block_z]) Bolt6Hole(depth=Block_z-3);
		
		
		// Servo
		//translate([Shaft_x,Shaft_y,Shaft_z-Servo_TopOfWheel]) rotate([0,0,90]) Servo_LD20MG(BottomMount=false,TopAccess=false);
	} // diff
	
	// Servo
		translate([Shaft_x,Shaft_y,Shaft_z-Servo_TopOfWheel]) rotate([0,0,90]) Servo_LD20MG(BottomMount=false,TopAccess=false);
	
} // HPRRSMBlock

//HPRRSMBlock();
